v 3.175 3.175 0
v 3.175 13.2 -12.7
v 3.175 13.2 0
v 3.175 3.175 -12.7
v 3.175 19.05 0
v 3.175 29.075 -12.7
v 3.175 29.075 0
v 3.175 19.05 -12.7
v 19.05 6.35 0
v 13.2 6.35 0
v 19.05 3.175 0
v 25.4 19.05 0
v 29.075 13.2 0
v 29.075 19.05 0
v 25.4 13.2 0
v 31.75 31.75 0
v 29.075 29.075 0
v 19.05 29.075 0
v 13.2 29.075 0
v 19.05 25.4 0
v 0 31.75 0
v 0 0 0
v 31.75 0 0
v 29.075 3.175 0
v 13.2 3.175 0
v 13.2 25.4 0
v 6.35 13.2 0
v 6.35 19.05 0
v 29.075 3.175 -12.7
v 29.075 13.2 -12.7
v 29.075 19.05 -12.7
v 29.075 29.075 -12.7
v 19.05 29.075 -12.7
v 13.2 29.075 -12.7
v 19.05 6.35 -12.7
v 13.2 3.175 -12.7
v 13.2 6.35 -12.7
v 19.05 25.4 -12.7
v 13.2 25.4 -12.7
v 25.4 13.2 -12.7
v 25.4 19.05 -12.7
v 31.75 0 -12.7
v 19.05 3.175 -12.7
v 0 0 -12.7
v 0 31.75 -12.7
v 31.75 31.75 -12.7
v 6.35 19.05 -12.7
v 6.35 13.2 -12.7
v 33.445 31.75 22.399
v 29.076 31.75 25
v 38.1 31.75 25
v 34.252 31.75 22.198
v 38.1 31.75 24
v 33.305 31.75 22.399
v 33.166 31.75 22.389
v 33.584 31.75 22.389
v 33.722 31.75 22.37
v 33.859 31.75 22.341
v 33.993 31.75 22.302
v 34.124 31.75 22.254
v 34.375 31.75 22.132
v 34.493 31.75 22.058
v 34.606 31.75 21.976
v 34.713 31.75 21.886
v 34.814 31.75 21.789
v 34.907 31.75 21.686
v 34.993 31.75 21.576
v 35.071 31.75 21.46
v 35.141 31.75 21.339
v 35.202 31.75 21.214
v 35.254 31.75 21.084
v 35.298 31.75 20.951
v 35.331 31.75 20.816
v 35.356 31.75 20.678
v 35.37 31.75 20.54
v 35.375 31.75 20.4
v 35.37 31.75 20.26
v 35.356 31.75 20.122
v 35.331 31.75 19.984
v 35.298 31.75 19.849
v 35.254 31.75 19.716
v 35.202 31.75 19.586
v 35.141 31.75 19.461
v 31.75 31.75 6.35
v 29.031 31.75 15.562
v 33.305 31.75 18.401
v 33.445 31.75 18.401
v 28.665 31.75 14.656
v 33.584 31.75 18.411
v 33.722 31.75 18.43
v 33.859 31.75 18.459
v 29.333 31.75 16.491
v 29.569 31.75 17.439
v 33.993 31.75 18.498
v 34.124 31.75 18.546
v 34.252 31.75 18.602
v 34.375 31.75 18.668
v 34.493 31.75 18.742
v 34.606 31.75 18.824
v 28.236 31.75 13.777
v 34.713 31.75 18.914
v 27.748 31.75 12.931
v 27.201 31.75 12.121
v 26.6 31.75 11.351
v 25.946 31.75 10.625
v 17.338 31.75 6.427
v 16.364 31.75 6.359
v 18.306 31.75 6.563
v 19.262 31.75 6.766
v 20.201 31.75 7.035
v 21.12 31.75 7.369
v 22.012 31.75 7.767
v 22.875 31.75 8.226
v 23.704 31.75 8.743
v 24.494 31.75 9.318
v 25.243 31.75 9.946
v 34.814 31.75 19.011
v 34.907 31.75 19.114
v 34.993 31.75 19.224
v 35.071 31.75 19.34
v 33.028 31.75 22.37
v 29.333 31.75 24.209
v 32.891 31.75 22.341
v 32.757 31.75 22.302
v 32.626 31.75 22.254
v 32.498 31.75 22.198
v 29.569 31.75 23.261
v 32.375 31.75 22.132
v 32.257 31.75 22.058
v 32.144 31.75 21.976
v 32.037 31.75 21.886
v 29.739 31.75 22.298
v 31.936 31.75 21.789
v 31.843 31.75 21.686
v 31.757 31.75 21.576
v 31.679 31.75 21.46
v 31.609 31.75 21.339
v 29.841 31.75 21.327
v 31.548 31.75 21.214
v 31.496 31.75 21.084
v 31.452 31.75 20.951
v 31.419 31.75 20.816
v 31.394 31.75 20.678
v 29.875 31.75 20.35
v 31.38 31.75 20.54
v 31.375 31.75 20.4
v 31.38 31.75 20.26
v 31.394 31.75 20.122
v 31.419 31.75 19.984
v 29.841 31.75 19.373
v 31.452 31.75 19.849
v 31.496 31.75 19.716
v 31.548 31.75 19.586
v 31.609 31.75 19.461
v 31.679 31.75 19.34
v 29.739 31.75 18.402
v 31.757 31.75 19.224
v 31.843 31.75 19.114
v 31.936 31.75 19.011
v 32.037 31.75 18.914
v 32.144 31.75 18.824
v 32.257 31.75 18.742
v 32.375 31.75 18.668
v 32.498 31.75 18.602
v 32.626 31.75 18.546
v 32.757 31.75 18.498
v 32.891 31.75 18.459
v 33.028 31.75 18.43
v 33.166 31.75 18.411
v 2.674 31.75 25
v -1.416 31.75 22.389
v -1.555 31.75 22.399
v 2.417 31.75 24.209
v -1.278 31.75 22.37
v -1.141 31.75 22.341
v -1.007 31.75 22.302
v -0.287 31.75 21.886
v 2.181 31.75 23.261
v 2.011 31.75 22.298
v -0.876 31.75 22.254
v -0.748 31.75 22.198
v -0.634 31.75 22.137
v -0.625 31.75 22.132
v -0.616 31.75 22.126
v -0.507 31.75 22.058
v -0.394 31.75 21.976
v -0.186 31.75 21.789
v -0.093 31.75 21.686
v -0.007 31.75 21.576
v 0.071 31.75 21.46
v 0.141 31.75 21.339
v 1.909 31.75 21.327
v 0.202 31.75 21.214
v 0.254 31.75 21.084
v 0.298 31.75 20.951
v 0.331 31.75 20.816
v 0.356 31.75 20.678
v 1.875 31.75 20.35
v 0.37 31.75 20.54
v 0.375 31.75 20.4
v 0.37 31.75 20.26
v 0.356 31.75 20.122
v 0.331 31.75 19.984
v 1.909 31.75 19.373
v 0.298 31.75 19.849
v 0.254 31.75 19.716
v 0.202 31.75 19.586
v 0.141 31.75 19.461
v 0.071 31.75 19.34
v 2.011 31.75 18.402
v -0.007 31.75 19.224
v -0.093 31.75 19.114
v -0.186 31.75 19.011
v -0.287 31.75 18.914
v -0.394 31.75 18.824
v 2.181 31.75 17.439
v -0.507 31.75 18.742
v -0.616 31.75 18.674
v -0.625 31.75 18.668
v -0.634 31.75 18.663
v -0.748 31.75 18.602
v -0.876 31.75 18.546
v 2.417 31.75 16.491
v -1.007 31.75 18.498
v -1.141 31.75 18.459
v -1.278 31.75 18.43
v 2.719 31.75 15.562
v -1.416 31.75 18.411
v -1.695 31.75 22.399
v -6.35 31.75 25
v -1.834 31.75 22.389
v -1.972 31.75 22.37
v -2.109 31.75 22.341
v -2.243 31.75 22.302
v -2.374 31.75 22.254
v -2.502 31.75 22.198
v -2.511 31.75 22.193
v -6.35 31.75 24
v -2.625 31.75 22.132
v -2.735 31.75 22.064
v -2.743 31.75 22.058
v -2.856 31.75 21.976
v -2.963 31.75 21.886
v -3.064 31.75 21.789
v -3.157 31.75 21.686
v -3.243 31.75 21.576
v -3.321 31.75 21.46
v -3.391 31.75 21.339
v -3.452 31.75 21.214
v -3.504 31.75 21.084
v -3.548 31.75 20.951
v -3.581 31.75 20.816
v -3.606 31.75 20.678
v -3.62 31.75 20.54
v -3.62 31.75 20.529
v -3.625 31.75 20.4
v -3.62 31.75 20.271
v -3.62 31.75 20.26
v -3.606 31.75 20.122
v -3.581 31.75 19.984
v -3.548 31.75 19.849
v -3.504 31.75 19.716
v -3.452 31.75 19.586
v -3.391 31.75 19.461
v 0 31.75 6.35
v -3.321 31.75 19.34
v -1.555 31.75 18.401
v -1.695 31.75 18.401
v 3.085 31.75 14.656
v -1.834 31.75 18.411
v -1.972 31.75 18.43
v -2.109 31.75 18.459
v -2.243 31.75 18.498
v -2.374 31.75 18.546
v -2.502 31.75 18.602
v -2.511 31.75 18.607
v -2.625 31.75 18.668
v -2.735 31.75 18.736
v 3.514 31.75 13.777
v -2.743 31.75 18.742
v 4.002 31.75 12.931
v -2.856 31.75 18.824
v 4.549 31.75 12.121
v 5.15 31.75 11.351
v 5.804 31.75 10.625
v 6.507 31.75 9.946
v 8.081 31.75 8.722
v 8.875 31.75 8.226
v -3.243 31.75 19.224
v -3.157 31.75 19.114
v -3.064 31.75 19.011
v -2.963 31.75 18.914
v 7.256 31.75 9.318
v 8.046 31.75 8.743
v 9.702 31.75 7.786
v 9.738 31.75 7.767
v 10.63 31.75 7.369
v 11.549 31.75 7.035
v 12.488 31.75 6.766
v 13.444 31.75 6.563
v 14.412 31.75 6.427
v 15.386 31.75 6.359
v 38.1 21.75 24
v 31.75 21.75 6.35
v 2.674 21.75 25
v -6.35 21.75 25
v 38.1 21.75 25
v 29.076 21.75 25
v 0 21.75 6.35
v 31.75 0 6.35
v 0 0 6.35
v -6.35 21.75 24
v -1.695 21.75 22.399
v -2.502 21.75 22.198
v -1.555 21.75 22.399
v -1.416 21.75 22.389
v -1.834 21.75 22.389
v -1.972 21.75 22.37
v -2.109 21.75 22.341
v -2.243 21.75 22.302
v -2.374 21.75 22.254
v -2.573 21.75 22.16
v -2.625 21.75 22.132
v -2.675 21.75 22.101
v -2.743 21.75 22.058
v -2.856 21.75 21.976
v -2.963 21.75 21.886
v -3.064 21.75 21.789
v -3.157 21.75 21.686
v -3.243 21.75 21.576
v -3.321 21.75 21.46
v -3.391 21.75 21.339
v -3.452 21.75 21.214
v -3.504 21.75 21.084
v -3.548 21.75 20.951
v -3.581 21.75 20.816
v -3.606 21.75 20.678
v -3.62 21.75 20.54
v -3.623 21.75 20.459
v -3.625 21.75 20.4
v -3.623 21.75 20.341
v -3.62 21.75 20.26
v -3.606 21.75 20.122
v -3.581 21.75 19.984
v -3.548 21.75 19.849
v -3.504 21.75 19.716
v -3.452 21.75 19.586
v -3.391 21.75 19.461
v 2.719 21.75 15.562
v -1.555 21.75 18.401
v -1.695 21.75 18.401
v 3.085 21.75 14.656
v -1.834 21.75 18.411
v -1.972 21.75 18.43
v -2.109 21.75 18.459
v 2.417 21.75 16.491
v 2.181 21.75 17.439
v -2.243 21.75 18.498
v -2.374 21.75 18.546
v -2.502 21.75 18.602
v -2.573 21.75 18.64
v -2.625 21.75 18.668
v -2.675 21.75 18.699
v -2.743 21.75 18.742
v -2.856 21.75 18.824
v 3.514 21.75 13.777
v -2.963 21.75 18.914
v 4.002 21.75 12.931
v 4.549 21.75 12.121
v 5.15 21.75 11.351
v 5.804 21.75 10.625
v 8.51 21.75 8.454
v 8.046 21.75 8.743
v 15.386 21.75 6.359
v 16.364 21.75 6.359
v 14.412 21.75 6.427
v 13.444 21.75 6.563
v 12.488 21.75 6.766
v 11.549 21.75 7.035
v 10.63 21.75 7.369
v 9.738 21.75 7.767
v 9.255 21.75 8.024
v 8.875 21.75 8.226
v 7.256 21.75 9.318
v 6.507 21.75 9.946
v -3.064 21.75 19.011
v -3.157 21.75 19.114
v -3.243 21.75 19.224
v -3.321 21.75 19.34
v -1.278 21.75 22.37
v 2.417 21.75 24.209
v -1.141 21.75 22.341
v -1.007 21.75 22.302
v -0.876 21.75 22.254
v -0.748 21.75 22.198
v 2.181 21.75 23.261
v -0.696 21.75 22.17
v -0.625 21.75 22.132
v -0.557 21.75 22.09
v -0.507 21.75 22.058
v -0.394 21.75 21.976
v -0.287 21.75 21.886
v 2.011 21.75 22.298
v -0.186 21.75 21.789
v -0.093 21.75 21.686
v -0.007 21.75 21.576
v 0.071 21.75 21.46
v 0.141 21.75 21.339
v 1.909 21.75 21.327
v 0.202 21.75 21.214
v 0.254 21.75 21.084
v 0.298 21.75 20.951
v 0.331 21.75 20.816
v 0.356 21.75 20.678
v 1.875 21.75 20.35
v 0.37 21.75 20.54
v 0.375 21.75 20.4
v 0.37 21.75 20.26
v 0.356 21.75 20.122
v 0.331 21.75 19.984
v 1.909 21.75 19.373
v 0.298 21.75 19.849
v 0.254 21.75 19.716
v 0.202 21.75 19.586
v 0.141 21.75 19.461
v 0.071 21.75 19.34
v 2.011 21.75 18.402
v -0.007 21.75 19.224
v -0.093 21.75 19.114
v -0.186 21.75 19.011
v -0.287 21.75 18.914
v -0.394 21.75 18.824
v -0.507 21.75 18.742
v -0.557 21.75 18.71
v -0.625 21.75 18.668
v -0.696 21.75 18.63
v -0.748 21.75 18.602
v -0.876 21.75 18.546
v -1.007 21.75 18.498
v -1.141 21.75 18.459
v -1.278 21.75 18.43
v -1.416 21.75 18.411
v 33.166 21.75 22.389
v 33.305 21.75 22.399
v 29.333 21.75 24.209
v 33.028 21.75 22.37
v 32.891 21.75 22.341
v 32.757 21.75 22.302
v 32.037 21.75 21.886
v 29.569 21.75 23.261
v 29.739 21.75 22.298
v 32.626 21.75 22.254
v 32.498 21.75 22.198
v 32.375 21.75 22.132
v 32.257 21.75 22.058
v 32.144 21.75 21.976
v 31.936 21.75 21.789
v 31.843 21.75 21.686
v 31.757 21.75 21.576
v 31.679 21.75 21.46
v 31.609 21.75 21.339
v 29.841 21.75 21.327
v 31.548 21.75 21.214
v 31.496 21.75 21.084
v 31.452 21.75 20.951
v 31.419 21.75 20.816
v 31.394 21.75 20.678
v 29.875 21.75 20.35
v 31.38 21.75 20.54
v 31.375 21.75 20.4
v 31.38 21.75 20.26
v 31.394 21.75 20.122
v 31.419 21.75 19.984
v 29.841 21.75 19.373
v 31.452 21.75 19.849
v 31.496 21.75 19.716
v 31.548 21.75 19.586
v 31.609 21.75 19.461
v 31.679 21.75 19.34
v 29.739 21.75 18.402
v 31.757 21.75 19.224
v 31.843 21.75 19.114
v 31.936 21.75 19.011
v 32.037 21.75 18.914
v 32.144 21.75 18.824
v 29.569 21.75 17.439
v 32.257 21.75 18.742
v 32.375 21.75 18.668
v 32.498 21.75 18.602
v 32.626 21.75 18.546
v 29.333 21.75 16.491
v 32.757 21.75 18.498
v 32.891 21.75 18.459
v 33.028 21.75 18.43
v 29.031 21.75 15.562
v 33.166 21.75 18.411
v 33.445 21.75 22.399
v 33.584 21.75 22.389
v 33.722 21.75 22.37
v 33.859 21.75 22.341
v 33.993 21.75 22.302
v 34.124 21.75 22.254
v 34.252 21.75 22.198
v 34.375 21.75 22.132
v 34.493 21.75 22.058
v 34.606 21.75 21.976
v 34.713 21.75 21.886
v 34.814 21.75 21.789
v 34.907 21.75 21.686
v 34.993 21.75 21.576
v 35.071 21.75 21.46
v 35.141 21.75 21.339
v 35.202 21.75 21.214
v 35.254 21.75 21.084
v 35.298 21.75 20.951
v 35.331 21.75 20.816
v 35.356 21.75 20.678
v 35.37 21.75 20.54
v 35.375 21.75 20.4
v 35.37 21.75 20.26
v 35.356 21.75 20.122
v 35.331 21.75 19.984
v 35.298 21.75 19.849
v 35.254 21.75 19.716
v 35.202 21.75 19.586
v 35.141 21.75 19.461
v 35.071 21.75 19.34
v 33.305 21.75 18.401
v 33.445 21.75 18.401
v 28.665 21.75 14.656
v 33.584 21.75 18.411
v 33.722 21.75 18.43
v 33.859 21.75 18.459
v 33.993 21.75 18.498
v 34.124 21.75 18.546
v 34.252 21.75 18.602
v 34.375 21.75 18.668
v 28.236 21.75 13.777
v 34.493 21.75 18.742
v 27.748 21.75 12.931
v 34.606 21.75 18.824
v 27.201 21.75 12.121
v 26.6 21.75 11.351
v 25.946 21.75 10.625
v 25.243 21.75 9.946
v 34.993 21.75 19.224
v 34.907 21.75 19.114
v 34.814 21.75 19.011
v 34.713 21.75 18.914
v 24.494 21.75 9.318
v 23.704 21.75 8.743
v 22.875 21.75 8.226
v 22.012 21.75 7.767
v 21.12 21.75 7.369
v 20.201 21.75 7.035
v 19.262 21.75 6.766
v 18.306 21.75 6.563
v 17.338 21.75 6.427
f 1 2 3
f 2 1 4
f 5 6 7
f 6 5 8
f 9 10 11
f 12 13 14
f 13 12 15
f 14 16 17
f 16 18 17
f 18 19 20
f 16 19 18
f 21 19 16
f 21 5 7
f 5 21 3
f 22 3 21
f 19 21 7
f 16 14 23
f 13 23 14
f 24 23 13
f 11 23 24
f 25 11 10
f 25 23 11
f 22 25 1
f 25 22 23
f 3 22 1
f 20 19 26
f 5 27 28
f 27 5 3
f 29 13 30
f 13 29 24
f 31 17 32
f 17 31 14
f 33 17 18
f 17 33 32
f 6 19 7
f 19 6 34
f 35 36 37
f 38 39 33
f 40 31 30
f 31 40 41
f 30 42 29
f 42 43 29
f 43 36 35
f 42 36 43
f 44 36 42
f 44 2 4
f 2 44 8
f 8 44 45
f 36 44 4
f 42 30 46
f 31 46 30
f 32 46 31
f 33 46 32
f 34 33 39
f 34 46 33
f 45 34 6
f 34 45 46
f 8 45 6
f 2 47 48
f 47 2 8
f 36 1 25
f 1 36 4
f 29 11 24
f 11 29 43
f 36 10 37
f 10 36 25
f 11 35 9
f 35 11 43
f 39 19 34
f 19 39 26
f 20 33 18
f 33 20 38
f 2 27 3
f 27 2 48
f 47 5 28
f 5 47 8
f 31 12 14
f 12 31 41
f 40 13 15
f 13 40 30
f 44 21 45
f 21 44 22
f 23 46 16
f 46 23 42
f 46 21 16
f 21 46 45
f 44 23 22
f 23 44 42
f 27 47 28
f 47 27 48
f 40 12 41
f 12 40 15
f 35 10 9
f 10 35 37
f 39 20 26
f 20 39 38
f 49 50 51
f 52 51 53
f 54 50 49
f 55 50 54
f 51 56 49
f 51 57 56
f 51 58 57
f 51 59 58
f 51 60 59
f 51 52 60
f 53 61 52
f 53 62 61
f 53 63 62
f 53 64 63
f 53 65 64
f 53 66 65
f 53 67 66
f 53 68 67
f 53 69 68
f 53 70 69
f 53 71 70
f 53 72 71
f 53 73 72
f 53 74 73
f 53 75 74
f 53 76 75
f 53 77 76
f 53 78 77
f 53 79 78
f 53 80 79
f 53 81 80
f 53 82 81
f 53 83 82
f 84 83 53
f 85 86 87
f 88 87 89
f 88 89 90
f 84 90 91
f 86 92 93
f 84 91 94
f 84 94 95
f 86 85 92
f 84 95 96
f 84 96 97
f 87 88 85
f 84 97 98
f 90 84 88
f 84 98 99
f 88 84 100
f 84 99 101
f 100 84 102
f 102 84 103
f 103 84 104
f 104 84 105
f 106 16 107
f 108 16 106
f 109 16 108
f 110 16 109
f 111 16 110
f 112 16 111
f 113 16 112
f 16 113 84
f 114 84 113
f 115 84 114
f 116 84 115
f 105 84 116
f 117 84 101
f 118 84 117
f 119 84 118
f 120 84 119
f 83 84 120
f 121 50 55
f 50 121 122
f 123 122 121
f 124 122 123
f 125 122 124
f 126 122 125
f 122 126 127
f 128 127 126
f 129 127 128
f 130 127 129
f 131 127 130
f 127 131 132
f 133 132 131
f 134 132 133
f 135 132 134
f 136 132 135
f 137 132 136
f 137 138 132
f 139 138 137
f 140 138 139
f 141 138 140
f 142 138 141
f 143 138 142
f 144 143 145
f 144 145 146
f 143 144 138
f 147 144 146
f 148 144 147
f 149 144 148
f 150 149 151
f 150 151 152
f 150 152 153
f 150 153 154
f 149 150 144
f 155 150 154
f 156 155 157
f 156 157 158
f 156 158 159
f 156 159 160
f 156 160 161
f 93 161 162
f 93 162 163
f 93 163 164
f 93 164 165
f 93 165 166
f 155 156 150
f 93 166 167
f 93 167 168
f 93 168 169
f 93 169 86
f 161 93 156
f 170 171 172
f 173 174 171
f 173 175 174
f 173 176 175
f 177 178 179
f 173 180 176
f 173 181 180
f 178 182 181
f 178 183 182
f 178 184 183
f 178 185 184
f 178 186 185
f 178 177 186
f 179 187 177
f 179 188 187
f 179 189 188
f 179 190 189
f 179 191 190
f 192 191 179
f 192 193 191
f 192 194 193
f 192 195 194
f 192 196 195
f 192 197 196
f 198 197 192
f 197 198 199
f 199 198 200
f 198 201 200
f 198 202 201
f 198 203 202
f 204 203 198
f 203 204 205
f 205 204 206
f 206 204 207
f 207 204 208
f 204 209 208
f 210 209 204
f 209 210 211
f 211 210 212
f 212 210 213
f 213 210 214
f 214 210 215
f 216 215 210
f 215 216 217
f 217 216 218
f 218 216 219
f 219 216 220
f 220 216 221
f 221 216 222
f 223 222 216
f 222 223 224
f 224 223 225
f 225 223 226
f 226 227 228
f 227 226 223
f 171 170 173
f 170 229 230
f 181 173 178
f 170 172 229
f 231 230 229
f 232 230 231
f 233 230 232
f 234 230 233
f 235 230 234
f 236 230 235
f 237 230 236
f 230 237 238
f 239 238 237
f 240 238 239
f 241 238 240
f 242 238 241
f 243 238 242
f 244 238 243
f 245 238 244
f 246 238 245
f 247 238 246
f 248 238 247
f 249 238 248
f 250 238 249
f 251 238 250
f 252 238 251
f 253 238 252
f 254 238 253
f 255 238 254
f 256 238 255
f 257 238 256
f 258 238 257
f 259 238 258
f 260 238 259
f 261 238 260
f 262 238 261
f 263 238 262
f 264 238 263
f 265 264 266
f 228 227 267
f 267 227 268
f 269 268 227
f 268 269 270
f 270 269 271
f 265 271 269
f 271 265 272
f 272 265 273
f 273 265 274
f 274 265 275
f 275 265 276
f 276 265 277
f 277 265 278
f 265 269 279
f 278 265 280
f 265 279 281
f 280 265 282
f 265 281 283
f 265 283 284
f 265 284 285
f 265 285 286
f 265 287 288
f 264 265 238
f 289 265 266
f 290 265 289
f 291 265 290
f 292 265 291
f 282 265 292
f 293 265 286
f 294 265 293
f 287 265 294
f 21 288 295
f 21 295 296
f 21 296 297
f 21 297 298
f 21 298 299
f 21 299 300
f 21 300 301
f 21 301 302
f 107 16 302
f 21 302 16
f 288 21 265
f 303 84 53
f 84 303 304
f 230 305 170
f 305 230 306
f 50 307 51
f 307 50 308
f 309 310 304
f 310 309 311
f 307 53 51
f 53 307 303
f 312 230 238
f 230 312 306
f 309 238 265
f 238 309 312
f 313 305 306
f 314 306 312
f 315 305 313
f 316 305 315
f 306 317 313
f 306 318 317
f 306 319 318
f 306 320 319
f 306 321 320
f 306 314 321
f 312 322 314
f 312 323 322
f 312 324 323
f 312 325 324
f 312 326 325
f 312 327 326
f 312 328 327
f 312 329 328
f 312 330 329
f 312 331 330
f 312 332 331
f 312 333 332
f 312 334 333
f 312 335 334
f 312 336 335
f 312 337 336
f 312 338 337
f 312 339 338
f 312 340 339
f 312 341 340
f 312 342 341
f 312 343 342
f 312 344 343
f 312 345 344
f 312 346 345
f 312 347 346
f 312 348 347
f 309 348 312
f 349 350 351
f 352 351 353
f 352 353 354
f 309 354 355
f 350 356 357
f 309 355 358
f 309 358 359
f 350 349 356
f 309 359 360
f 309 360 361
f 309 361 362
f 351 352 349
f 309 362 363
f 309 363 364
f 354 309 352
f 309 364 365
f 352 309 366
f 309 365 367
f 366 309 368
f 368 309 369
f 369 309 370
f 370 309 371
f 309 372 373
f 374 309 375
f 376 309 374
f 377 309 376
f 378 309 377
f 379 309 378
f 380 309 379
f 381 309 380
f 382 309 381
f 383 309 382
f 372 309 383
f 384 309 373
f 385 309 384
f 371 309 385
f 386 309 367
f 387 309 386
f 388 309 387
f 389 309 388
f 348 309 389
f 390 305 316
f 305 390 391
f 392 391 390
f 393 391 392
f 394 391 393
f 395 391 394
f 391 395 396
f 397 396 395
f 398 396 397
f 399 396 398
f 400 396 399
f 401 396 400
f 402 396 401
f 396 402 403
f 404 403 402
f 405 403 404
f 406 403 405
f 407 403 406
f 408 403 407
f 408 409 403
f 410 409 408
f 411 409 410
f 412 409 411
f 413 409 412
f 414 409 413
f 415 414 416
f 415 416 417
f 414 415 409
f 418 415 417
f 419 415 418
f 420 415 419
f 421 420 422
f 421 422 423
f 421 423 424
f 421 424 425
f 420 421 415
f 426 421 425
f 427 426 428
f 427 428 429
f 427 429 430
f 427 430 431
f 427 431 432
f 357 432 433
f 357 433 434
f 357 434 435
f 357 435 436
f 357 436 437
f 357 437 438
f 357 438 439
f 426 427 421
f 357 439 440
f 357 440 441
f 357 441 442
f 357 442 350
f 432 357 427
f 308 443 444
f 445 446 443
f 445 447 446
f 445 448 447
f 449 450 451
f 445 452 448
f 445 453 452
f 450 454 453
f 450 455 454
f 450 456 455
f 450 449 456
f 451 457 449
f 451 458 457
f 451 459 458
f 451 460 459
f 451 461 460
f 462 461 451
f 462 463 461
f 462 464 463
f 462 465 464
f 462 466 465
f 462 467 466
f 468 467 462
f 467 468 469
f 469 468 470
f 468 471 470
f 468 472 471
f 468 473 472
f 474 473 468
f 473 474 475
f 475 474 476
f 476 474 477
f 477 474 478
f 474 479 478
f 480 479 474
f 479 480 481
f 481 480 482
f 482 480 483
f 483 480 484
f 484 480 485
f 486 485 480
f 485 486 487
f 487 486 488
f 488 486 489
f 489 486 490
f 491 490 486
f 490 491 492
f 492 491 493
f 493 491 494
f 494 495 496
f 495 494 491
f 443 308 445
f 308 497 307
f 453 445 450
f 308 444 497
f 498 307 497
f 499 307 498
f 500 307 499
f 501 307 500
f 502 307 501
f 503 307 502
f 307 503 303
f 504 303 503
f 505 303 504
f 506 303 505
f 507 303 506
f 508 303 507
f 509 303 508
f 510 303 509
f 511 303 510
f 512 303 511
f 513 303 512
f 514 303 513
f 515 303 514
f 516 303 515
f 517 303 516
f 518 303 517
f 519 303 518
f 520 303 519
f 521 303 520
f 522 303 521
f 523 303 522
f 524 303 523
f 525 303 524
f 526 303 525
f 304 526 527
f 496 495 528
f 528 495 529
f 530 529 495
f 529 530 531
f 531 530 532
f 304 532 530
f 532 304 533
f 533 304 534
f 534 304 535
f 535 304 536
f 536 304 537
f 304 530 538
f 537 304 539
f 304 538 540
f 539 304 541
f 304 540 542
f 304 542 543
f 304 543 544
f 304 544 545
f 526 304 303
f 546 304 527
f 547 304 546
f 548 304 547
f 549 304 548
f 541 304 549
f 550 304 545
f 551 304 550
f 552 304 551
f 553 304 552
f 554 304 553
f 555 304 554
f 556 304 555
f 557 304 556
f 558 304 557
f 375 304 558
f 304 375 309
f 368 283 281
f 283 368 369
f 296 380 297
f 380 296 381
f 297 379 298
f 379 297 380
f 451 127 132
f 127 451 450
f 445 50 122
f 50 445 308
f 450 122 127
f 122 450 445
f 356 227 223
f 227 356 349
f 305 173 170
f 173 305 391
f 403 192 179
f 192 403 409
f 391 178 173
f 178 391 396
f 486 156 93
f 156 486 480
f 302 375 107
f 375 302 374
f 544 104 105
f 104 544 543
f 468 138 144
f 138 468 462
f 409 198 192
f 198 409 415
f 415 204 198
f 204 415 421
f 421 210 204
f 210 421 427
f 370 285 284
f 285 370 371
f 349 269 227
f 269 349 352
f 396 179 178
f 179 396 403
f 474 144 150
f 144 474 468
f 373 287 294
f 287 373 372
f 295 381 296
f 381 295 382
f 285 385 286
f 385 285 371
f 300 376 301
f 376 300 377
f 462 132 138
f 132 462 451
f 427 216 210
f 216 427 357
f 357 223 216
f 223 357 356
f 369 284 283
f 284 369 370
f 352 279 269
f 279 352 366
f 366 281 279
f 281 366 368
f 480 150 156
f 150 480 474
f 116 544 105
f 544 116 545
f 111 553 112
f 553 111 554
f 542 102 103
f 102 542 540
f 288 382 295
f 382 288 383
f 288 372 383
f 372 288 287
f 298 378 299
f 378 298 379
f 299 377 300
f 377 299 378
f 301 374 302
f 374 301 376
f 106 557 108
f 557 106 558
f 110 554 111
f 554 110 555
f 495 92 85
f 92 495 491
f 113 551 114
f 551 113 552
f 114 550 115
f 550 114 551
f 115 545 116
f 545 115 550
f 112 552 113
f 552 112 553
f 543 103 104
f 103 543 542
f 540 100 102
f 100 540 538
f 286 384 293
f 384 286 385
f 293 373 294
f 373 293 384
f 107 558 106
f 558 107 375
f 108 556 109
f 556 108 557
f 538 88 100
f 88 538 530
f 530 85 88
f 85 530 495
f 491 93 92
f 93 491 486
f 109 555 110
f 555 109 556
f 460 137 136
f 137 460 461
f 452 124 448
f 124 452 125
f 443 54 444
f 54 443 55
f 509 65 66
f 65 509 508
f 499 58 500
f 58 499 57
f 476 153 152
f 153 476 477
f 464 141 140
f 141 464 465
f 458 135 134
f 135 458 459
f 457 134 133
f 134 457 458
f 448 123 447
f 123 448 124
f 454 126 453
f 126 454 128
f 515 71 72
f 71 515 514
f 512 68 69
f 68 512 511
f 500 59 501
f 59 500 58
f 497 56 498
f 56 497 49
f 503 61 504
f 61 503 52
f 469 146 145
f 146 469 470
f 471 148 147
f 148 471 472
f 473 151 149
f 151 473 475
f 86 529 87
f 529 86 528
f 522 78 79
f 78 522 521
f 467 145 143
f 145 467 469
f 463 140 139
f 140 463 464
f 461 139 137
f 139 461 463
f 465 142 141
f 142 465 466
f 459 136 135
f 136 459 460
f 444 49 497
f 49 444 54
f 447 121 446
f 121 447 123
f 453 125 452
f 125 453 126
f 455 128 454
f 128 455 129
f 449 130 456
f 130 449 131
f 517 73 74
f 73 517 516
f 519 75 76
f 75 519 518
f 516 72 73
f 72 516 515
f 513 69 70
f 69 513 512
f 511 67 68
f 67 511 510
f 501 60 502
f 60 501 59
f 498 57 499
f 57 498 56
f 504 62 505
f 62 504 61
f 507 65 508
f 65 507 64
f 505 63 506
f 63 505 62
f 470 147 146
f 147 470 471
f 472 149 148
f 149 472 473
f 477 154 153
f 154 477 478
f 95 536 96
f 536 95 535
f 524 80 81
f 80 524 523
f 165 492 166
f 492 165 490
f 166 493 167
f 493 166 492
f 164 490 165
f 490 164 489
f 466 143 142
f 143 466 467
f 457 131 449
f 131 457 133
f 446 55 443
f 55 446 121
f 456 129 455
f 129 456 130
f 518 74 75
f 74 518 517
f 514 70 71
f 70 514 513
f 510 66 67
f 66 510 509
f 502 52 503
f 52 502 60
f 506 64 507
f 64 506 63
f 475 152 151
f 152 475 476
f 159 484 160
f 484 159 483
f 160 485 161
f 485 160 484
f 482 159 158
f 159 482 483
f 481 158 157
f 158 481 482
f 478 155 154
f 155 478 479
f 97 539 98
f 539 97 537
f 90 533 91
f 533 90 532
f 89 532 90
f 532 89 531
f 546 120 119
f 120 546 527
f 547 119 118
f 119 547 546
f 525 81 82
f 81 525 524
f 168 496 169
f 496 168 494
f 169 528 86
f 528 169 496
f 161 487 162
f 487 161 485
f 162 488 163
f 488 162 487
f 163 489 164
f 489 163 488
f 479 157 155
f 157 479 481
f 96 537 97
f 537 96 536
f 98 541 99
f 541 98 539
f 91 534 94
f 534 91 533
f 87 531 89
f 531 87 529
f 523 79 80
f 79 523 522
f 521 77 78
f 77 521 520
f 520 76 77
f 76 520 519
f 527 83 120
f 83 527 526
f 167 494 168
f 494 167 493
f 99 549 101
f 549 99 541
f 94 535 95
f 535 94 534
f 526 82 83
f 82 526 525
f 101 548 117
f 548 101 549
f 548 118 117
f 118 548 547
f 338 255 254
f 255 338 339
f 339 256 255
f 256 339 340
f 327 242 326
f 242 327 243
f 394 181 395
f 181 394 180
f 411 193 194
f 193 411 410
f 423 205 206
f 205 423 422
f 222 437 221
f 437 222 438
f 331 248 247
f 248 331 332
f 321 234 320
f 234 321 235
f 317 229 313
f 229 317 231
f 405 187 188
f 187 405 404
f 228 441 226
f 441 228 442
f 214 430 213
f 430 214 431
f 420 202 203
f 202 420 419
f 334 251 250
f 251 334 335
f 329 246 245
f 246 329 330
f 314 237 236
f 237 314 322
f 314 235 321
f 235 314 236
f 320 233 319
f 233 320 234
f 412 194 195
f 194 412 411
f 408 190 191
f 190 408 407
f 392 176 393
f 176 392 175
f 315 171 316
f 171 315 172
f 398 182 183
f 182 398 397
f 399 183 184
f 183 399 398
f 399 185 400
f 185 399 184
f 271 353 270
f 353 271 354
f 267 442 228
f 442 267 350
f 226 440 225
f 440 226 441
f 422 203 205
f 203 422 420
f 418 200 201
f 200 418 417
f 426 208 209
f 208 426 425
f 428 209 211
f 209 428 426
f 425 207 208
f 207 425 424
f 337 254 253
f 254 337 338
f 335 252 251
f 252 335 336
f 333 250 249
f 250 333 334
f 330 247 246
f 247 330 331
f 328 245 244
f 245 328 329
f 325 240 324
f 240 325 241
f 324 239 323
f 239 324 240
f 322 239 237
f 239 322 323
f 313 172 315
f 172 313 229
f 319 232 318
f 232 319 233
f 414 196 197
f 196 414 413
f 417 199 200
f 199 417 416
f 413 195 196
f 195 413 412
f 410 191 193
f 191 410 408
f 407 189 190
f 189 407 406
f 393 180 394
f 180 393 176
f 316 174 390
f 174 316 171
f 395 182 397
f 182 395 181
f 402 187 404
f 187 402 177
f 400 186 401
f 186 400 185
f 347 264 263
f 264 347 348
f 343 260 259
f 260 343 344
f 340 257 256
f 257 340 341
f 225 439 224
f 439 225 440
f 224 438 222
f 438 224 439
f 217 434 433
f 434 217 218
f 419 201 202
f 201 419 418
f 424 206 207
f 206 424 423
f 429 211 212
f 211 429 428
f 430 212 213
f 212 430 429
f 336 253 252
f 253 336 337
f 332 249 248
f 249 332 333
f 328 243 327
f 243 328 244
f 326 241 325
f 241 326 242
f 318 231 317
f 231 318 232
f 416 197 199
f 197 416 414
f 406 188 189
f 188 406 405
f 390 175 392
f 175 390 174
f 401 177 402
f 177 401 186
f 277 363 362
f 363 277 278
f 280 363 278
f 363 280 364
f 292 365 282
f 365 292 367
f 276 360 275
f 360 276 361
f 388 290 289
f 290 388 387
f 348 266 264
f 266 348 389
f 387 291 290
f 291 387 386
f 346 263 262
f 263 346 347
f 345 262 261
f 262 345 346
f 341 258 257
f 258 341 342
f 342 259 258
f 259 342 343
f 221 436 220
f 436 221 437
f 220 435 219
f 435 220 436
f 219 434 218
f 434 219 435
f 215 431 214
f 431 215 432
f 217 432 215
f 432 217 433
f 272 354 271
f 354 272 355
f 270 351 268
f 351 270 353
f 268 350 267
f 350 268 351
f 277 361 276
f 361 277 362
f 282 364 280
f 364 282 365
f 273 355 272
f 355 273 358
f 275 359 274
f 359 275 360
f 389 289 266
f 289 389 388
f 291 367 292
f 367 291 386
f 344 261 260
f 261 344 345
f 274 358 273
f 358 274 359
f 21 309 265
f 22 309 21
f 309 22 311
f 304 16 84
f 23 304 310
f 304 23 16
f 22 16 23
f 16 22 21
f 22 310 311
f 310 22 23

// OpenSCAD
// file: 8020.scad
in2mm=25.4;

adjustment=.5;
alSide = in2mm+adjustment;
adSideCuts = .25*in2mm-adjustment;

module aluminium8020(moduleHeight)
{
    difference(){
        cube([alSide, alSide, moduleHeight]);
        
        translate([alSide/2-(adSideCuts/2),0,0]) 
            cube([adSideCuts, adSideCuts, moduleHeight]);
        translate([alSide/2-(adSideCuts/2),alSide-adSideCuts,0])
            cube([adSideCuts, adSideCuts, moduleHeight]);
        translate([0,alSide/2-(adSideCuts/2),0])
            cube([adSideCuts, adSideCuts, moduleHeight]);
        translate([alSide-adSideCuts,alSide/2-(adSideCuts/2),0])
            cube([adSideCuts, adSideCuts, moduleHeight]);
    }
}

module linearBearing(height){
    difference(){
        cube([1.25*in2mm, 1.25*in2mm, height]);
        translate([1/8*in2mm,1/8*in2mm,0])aluminium8020(height);
        translate([(in2mm/4), (in2mm/4),])cube([.75*in2mm, .75*in2mm, height]);
    }
}




linearBearing(.5*in2mm);
// main file
use <8020.scad>

//note: accelstepper lib

$fn=90;
in2mm=25.4;
moduleHeight = in2mm*72;


//aluminium8020(moduleHeight);

module kinectBase()
{
    //holes
    difference(){
        cube([87, 73,.5*in2mm]);
        translate([7.5+2.5/2,25+2.5/2,0])
            union(){
                translate([0,0,0])cylinder(d=2.5, h=100);
                translate([68.6,0,0])cylinder(d=2.5, h=100);
                translate([0,(.75*in2mm),0])cylinder(d=2.5, h=100);
                translate([68.6,(.75*in2mm),0])cylinder(d=2.5, h=100);
            }
    }
}
/*
union(){
kinectBase();
translate([87-1.25*in2mm,73,0])linearBearing(1.5*in2mm);
}
hh = 12*in2mm;
translate([87-1.25*in2mm,73,-hh/2])translate([1/8*in2mm,1/8*in2mm,0])aluminium8020(hh);
*/
module motor(){
    cylinder(d=28, h=19.3);
    difference(){
        hull(){
            translate([21-7/2,0,19.3-.8])cylinder(d=7, h=.8);
            translate([-21+7/2,0,19.3-.8])cylinder(d=7, h=.8);
        }
        translate([21-7/2,0,19.3-.9])cylinder(d=4, h=1);
        translate([-21+7/2,0,19.3-.9])cylinder(d=4, h=1);
    }
    translate([0,-7.9,0])cylinder(d=9.2, h=20.58);
    difference(){
        translate([0,-7.9,0])cylinder(d=5, h=29);
        translate([-2.5,-7.9+2.5-1,29-.25*in2mm])cube([5,5,.25*in2mm]);
        translate([-2.5,-7.9-7.5+1,29-.25*in2mm])cube([5,5,.25*in2mm]);
    }
}

module topMotorMount(){
    union(){
        translate([0,0,0])cube([1.25*in2mm,1.25*in2mm,.25*in2mm]);
        translate([0,0,-0.5*in2mm])linearBearing(0.5*in2mm);
        //translate([1.25*in2mm/2,1.25*in2mm-19.3+.8,28/2+(.25*in2mm)])rotate([90,0,180])motor();
        difference(){
            hull(){
                translate([-1/4*in2mm,1.25*in2mm-10,24])cube([1.75*in2mm,10,1]);
                translate([0,1.25*in2mm-10,(.25*in2mm)])cube([1.25*in2mm,10,1]);
            }
            translate([(1+1/4)*in2mm/2,1.25*in2mm-19.3+.8,28/2+(.25*in2mm)])rotate([90,0,180])cylinder(d=28, h=19.3);
                    translate([(1+1/4)*in2mm/2,1.25*in2mm-19.3+.8,2])translate([21-7/2,0,19.3-.9])rotate([90,0,180])cylinder(d=4, h=20);
            translate([(1+1/4)*in2mm/2,1.25*in2mm-19.3+.8,2])translate([-21+7/2,0,19.3-.9])rotate([90,0,180])cylinder(d=4, h=20);
        }
    }
}
//translate([87-1.25*in2mm,73,hh/2])
topMotorMount();
//translate([87-1.25*in2mm,73,hh/2])rotate([90,0,180])motor();
